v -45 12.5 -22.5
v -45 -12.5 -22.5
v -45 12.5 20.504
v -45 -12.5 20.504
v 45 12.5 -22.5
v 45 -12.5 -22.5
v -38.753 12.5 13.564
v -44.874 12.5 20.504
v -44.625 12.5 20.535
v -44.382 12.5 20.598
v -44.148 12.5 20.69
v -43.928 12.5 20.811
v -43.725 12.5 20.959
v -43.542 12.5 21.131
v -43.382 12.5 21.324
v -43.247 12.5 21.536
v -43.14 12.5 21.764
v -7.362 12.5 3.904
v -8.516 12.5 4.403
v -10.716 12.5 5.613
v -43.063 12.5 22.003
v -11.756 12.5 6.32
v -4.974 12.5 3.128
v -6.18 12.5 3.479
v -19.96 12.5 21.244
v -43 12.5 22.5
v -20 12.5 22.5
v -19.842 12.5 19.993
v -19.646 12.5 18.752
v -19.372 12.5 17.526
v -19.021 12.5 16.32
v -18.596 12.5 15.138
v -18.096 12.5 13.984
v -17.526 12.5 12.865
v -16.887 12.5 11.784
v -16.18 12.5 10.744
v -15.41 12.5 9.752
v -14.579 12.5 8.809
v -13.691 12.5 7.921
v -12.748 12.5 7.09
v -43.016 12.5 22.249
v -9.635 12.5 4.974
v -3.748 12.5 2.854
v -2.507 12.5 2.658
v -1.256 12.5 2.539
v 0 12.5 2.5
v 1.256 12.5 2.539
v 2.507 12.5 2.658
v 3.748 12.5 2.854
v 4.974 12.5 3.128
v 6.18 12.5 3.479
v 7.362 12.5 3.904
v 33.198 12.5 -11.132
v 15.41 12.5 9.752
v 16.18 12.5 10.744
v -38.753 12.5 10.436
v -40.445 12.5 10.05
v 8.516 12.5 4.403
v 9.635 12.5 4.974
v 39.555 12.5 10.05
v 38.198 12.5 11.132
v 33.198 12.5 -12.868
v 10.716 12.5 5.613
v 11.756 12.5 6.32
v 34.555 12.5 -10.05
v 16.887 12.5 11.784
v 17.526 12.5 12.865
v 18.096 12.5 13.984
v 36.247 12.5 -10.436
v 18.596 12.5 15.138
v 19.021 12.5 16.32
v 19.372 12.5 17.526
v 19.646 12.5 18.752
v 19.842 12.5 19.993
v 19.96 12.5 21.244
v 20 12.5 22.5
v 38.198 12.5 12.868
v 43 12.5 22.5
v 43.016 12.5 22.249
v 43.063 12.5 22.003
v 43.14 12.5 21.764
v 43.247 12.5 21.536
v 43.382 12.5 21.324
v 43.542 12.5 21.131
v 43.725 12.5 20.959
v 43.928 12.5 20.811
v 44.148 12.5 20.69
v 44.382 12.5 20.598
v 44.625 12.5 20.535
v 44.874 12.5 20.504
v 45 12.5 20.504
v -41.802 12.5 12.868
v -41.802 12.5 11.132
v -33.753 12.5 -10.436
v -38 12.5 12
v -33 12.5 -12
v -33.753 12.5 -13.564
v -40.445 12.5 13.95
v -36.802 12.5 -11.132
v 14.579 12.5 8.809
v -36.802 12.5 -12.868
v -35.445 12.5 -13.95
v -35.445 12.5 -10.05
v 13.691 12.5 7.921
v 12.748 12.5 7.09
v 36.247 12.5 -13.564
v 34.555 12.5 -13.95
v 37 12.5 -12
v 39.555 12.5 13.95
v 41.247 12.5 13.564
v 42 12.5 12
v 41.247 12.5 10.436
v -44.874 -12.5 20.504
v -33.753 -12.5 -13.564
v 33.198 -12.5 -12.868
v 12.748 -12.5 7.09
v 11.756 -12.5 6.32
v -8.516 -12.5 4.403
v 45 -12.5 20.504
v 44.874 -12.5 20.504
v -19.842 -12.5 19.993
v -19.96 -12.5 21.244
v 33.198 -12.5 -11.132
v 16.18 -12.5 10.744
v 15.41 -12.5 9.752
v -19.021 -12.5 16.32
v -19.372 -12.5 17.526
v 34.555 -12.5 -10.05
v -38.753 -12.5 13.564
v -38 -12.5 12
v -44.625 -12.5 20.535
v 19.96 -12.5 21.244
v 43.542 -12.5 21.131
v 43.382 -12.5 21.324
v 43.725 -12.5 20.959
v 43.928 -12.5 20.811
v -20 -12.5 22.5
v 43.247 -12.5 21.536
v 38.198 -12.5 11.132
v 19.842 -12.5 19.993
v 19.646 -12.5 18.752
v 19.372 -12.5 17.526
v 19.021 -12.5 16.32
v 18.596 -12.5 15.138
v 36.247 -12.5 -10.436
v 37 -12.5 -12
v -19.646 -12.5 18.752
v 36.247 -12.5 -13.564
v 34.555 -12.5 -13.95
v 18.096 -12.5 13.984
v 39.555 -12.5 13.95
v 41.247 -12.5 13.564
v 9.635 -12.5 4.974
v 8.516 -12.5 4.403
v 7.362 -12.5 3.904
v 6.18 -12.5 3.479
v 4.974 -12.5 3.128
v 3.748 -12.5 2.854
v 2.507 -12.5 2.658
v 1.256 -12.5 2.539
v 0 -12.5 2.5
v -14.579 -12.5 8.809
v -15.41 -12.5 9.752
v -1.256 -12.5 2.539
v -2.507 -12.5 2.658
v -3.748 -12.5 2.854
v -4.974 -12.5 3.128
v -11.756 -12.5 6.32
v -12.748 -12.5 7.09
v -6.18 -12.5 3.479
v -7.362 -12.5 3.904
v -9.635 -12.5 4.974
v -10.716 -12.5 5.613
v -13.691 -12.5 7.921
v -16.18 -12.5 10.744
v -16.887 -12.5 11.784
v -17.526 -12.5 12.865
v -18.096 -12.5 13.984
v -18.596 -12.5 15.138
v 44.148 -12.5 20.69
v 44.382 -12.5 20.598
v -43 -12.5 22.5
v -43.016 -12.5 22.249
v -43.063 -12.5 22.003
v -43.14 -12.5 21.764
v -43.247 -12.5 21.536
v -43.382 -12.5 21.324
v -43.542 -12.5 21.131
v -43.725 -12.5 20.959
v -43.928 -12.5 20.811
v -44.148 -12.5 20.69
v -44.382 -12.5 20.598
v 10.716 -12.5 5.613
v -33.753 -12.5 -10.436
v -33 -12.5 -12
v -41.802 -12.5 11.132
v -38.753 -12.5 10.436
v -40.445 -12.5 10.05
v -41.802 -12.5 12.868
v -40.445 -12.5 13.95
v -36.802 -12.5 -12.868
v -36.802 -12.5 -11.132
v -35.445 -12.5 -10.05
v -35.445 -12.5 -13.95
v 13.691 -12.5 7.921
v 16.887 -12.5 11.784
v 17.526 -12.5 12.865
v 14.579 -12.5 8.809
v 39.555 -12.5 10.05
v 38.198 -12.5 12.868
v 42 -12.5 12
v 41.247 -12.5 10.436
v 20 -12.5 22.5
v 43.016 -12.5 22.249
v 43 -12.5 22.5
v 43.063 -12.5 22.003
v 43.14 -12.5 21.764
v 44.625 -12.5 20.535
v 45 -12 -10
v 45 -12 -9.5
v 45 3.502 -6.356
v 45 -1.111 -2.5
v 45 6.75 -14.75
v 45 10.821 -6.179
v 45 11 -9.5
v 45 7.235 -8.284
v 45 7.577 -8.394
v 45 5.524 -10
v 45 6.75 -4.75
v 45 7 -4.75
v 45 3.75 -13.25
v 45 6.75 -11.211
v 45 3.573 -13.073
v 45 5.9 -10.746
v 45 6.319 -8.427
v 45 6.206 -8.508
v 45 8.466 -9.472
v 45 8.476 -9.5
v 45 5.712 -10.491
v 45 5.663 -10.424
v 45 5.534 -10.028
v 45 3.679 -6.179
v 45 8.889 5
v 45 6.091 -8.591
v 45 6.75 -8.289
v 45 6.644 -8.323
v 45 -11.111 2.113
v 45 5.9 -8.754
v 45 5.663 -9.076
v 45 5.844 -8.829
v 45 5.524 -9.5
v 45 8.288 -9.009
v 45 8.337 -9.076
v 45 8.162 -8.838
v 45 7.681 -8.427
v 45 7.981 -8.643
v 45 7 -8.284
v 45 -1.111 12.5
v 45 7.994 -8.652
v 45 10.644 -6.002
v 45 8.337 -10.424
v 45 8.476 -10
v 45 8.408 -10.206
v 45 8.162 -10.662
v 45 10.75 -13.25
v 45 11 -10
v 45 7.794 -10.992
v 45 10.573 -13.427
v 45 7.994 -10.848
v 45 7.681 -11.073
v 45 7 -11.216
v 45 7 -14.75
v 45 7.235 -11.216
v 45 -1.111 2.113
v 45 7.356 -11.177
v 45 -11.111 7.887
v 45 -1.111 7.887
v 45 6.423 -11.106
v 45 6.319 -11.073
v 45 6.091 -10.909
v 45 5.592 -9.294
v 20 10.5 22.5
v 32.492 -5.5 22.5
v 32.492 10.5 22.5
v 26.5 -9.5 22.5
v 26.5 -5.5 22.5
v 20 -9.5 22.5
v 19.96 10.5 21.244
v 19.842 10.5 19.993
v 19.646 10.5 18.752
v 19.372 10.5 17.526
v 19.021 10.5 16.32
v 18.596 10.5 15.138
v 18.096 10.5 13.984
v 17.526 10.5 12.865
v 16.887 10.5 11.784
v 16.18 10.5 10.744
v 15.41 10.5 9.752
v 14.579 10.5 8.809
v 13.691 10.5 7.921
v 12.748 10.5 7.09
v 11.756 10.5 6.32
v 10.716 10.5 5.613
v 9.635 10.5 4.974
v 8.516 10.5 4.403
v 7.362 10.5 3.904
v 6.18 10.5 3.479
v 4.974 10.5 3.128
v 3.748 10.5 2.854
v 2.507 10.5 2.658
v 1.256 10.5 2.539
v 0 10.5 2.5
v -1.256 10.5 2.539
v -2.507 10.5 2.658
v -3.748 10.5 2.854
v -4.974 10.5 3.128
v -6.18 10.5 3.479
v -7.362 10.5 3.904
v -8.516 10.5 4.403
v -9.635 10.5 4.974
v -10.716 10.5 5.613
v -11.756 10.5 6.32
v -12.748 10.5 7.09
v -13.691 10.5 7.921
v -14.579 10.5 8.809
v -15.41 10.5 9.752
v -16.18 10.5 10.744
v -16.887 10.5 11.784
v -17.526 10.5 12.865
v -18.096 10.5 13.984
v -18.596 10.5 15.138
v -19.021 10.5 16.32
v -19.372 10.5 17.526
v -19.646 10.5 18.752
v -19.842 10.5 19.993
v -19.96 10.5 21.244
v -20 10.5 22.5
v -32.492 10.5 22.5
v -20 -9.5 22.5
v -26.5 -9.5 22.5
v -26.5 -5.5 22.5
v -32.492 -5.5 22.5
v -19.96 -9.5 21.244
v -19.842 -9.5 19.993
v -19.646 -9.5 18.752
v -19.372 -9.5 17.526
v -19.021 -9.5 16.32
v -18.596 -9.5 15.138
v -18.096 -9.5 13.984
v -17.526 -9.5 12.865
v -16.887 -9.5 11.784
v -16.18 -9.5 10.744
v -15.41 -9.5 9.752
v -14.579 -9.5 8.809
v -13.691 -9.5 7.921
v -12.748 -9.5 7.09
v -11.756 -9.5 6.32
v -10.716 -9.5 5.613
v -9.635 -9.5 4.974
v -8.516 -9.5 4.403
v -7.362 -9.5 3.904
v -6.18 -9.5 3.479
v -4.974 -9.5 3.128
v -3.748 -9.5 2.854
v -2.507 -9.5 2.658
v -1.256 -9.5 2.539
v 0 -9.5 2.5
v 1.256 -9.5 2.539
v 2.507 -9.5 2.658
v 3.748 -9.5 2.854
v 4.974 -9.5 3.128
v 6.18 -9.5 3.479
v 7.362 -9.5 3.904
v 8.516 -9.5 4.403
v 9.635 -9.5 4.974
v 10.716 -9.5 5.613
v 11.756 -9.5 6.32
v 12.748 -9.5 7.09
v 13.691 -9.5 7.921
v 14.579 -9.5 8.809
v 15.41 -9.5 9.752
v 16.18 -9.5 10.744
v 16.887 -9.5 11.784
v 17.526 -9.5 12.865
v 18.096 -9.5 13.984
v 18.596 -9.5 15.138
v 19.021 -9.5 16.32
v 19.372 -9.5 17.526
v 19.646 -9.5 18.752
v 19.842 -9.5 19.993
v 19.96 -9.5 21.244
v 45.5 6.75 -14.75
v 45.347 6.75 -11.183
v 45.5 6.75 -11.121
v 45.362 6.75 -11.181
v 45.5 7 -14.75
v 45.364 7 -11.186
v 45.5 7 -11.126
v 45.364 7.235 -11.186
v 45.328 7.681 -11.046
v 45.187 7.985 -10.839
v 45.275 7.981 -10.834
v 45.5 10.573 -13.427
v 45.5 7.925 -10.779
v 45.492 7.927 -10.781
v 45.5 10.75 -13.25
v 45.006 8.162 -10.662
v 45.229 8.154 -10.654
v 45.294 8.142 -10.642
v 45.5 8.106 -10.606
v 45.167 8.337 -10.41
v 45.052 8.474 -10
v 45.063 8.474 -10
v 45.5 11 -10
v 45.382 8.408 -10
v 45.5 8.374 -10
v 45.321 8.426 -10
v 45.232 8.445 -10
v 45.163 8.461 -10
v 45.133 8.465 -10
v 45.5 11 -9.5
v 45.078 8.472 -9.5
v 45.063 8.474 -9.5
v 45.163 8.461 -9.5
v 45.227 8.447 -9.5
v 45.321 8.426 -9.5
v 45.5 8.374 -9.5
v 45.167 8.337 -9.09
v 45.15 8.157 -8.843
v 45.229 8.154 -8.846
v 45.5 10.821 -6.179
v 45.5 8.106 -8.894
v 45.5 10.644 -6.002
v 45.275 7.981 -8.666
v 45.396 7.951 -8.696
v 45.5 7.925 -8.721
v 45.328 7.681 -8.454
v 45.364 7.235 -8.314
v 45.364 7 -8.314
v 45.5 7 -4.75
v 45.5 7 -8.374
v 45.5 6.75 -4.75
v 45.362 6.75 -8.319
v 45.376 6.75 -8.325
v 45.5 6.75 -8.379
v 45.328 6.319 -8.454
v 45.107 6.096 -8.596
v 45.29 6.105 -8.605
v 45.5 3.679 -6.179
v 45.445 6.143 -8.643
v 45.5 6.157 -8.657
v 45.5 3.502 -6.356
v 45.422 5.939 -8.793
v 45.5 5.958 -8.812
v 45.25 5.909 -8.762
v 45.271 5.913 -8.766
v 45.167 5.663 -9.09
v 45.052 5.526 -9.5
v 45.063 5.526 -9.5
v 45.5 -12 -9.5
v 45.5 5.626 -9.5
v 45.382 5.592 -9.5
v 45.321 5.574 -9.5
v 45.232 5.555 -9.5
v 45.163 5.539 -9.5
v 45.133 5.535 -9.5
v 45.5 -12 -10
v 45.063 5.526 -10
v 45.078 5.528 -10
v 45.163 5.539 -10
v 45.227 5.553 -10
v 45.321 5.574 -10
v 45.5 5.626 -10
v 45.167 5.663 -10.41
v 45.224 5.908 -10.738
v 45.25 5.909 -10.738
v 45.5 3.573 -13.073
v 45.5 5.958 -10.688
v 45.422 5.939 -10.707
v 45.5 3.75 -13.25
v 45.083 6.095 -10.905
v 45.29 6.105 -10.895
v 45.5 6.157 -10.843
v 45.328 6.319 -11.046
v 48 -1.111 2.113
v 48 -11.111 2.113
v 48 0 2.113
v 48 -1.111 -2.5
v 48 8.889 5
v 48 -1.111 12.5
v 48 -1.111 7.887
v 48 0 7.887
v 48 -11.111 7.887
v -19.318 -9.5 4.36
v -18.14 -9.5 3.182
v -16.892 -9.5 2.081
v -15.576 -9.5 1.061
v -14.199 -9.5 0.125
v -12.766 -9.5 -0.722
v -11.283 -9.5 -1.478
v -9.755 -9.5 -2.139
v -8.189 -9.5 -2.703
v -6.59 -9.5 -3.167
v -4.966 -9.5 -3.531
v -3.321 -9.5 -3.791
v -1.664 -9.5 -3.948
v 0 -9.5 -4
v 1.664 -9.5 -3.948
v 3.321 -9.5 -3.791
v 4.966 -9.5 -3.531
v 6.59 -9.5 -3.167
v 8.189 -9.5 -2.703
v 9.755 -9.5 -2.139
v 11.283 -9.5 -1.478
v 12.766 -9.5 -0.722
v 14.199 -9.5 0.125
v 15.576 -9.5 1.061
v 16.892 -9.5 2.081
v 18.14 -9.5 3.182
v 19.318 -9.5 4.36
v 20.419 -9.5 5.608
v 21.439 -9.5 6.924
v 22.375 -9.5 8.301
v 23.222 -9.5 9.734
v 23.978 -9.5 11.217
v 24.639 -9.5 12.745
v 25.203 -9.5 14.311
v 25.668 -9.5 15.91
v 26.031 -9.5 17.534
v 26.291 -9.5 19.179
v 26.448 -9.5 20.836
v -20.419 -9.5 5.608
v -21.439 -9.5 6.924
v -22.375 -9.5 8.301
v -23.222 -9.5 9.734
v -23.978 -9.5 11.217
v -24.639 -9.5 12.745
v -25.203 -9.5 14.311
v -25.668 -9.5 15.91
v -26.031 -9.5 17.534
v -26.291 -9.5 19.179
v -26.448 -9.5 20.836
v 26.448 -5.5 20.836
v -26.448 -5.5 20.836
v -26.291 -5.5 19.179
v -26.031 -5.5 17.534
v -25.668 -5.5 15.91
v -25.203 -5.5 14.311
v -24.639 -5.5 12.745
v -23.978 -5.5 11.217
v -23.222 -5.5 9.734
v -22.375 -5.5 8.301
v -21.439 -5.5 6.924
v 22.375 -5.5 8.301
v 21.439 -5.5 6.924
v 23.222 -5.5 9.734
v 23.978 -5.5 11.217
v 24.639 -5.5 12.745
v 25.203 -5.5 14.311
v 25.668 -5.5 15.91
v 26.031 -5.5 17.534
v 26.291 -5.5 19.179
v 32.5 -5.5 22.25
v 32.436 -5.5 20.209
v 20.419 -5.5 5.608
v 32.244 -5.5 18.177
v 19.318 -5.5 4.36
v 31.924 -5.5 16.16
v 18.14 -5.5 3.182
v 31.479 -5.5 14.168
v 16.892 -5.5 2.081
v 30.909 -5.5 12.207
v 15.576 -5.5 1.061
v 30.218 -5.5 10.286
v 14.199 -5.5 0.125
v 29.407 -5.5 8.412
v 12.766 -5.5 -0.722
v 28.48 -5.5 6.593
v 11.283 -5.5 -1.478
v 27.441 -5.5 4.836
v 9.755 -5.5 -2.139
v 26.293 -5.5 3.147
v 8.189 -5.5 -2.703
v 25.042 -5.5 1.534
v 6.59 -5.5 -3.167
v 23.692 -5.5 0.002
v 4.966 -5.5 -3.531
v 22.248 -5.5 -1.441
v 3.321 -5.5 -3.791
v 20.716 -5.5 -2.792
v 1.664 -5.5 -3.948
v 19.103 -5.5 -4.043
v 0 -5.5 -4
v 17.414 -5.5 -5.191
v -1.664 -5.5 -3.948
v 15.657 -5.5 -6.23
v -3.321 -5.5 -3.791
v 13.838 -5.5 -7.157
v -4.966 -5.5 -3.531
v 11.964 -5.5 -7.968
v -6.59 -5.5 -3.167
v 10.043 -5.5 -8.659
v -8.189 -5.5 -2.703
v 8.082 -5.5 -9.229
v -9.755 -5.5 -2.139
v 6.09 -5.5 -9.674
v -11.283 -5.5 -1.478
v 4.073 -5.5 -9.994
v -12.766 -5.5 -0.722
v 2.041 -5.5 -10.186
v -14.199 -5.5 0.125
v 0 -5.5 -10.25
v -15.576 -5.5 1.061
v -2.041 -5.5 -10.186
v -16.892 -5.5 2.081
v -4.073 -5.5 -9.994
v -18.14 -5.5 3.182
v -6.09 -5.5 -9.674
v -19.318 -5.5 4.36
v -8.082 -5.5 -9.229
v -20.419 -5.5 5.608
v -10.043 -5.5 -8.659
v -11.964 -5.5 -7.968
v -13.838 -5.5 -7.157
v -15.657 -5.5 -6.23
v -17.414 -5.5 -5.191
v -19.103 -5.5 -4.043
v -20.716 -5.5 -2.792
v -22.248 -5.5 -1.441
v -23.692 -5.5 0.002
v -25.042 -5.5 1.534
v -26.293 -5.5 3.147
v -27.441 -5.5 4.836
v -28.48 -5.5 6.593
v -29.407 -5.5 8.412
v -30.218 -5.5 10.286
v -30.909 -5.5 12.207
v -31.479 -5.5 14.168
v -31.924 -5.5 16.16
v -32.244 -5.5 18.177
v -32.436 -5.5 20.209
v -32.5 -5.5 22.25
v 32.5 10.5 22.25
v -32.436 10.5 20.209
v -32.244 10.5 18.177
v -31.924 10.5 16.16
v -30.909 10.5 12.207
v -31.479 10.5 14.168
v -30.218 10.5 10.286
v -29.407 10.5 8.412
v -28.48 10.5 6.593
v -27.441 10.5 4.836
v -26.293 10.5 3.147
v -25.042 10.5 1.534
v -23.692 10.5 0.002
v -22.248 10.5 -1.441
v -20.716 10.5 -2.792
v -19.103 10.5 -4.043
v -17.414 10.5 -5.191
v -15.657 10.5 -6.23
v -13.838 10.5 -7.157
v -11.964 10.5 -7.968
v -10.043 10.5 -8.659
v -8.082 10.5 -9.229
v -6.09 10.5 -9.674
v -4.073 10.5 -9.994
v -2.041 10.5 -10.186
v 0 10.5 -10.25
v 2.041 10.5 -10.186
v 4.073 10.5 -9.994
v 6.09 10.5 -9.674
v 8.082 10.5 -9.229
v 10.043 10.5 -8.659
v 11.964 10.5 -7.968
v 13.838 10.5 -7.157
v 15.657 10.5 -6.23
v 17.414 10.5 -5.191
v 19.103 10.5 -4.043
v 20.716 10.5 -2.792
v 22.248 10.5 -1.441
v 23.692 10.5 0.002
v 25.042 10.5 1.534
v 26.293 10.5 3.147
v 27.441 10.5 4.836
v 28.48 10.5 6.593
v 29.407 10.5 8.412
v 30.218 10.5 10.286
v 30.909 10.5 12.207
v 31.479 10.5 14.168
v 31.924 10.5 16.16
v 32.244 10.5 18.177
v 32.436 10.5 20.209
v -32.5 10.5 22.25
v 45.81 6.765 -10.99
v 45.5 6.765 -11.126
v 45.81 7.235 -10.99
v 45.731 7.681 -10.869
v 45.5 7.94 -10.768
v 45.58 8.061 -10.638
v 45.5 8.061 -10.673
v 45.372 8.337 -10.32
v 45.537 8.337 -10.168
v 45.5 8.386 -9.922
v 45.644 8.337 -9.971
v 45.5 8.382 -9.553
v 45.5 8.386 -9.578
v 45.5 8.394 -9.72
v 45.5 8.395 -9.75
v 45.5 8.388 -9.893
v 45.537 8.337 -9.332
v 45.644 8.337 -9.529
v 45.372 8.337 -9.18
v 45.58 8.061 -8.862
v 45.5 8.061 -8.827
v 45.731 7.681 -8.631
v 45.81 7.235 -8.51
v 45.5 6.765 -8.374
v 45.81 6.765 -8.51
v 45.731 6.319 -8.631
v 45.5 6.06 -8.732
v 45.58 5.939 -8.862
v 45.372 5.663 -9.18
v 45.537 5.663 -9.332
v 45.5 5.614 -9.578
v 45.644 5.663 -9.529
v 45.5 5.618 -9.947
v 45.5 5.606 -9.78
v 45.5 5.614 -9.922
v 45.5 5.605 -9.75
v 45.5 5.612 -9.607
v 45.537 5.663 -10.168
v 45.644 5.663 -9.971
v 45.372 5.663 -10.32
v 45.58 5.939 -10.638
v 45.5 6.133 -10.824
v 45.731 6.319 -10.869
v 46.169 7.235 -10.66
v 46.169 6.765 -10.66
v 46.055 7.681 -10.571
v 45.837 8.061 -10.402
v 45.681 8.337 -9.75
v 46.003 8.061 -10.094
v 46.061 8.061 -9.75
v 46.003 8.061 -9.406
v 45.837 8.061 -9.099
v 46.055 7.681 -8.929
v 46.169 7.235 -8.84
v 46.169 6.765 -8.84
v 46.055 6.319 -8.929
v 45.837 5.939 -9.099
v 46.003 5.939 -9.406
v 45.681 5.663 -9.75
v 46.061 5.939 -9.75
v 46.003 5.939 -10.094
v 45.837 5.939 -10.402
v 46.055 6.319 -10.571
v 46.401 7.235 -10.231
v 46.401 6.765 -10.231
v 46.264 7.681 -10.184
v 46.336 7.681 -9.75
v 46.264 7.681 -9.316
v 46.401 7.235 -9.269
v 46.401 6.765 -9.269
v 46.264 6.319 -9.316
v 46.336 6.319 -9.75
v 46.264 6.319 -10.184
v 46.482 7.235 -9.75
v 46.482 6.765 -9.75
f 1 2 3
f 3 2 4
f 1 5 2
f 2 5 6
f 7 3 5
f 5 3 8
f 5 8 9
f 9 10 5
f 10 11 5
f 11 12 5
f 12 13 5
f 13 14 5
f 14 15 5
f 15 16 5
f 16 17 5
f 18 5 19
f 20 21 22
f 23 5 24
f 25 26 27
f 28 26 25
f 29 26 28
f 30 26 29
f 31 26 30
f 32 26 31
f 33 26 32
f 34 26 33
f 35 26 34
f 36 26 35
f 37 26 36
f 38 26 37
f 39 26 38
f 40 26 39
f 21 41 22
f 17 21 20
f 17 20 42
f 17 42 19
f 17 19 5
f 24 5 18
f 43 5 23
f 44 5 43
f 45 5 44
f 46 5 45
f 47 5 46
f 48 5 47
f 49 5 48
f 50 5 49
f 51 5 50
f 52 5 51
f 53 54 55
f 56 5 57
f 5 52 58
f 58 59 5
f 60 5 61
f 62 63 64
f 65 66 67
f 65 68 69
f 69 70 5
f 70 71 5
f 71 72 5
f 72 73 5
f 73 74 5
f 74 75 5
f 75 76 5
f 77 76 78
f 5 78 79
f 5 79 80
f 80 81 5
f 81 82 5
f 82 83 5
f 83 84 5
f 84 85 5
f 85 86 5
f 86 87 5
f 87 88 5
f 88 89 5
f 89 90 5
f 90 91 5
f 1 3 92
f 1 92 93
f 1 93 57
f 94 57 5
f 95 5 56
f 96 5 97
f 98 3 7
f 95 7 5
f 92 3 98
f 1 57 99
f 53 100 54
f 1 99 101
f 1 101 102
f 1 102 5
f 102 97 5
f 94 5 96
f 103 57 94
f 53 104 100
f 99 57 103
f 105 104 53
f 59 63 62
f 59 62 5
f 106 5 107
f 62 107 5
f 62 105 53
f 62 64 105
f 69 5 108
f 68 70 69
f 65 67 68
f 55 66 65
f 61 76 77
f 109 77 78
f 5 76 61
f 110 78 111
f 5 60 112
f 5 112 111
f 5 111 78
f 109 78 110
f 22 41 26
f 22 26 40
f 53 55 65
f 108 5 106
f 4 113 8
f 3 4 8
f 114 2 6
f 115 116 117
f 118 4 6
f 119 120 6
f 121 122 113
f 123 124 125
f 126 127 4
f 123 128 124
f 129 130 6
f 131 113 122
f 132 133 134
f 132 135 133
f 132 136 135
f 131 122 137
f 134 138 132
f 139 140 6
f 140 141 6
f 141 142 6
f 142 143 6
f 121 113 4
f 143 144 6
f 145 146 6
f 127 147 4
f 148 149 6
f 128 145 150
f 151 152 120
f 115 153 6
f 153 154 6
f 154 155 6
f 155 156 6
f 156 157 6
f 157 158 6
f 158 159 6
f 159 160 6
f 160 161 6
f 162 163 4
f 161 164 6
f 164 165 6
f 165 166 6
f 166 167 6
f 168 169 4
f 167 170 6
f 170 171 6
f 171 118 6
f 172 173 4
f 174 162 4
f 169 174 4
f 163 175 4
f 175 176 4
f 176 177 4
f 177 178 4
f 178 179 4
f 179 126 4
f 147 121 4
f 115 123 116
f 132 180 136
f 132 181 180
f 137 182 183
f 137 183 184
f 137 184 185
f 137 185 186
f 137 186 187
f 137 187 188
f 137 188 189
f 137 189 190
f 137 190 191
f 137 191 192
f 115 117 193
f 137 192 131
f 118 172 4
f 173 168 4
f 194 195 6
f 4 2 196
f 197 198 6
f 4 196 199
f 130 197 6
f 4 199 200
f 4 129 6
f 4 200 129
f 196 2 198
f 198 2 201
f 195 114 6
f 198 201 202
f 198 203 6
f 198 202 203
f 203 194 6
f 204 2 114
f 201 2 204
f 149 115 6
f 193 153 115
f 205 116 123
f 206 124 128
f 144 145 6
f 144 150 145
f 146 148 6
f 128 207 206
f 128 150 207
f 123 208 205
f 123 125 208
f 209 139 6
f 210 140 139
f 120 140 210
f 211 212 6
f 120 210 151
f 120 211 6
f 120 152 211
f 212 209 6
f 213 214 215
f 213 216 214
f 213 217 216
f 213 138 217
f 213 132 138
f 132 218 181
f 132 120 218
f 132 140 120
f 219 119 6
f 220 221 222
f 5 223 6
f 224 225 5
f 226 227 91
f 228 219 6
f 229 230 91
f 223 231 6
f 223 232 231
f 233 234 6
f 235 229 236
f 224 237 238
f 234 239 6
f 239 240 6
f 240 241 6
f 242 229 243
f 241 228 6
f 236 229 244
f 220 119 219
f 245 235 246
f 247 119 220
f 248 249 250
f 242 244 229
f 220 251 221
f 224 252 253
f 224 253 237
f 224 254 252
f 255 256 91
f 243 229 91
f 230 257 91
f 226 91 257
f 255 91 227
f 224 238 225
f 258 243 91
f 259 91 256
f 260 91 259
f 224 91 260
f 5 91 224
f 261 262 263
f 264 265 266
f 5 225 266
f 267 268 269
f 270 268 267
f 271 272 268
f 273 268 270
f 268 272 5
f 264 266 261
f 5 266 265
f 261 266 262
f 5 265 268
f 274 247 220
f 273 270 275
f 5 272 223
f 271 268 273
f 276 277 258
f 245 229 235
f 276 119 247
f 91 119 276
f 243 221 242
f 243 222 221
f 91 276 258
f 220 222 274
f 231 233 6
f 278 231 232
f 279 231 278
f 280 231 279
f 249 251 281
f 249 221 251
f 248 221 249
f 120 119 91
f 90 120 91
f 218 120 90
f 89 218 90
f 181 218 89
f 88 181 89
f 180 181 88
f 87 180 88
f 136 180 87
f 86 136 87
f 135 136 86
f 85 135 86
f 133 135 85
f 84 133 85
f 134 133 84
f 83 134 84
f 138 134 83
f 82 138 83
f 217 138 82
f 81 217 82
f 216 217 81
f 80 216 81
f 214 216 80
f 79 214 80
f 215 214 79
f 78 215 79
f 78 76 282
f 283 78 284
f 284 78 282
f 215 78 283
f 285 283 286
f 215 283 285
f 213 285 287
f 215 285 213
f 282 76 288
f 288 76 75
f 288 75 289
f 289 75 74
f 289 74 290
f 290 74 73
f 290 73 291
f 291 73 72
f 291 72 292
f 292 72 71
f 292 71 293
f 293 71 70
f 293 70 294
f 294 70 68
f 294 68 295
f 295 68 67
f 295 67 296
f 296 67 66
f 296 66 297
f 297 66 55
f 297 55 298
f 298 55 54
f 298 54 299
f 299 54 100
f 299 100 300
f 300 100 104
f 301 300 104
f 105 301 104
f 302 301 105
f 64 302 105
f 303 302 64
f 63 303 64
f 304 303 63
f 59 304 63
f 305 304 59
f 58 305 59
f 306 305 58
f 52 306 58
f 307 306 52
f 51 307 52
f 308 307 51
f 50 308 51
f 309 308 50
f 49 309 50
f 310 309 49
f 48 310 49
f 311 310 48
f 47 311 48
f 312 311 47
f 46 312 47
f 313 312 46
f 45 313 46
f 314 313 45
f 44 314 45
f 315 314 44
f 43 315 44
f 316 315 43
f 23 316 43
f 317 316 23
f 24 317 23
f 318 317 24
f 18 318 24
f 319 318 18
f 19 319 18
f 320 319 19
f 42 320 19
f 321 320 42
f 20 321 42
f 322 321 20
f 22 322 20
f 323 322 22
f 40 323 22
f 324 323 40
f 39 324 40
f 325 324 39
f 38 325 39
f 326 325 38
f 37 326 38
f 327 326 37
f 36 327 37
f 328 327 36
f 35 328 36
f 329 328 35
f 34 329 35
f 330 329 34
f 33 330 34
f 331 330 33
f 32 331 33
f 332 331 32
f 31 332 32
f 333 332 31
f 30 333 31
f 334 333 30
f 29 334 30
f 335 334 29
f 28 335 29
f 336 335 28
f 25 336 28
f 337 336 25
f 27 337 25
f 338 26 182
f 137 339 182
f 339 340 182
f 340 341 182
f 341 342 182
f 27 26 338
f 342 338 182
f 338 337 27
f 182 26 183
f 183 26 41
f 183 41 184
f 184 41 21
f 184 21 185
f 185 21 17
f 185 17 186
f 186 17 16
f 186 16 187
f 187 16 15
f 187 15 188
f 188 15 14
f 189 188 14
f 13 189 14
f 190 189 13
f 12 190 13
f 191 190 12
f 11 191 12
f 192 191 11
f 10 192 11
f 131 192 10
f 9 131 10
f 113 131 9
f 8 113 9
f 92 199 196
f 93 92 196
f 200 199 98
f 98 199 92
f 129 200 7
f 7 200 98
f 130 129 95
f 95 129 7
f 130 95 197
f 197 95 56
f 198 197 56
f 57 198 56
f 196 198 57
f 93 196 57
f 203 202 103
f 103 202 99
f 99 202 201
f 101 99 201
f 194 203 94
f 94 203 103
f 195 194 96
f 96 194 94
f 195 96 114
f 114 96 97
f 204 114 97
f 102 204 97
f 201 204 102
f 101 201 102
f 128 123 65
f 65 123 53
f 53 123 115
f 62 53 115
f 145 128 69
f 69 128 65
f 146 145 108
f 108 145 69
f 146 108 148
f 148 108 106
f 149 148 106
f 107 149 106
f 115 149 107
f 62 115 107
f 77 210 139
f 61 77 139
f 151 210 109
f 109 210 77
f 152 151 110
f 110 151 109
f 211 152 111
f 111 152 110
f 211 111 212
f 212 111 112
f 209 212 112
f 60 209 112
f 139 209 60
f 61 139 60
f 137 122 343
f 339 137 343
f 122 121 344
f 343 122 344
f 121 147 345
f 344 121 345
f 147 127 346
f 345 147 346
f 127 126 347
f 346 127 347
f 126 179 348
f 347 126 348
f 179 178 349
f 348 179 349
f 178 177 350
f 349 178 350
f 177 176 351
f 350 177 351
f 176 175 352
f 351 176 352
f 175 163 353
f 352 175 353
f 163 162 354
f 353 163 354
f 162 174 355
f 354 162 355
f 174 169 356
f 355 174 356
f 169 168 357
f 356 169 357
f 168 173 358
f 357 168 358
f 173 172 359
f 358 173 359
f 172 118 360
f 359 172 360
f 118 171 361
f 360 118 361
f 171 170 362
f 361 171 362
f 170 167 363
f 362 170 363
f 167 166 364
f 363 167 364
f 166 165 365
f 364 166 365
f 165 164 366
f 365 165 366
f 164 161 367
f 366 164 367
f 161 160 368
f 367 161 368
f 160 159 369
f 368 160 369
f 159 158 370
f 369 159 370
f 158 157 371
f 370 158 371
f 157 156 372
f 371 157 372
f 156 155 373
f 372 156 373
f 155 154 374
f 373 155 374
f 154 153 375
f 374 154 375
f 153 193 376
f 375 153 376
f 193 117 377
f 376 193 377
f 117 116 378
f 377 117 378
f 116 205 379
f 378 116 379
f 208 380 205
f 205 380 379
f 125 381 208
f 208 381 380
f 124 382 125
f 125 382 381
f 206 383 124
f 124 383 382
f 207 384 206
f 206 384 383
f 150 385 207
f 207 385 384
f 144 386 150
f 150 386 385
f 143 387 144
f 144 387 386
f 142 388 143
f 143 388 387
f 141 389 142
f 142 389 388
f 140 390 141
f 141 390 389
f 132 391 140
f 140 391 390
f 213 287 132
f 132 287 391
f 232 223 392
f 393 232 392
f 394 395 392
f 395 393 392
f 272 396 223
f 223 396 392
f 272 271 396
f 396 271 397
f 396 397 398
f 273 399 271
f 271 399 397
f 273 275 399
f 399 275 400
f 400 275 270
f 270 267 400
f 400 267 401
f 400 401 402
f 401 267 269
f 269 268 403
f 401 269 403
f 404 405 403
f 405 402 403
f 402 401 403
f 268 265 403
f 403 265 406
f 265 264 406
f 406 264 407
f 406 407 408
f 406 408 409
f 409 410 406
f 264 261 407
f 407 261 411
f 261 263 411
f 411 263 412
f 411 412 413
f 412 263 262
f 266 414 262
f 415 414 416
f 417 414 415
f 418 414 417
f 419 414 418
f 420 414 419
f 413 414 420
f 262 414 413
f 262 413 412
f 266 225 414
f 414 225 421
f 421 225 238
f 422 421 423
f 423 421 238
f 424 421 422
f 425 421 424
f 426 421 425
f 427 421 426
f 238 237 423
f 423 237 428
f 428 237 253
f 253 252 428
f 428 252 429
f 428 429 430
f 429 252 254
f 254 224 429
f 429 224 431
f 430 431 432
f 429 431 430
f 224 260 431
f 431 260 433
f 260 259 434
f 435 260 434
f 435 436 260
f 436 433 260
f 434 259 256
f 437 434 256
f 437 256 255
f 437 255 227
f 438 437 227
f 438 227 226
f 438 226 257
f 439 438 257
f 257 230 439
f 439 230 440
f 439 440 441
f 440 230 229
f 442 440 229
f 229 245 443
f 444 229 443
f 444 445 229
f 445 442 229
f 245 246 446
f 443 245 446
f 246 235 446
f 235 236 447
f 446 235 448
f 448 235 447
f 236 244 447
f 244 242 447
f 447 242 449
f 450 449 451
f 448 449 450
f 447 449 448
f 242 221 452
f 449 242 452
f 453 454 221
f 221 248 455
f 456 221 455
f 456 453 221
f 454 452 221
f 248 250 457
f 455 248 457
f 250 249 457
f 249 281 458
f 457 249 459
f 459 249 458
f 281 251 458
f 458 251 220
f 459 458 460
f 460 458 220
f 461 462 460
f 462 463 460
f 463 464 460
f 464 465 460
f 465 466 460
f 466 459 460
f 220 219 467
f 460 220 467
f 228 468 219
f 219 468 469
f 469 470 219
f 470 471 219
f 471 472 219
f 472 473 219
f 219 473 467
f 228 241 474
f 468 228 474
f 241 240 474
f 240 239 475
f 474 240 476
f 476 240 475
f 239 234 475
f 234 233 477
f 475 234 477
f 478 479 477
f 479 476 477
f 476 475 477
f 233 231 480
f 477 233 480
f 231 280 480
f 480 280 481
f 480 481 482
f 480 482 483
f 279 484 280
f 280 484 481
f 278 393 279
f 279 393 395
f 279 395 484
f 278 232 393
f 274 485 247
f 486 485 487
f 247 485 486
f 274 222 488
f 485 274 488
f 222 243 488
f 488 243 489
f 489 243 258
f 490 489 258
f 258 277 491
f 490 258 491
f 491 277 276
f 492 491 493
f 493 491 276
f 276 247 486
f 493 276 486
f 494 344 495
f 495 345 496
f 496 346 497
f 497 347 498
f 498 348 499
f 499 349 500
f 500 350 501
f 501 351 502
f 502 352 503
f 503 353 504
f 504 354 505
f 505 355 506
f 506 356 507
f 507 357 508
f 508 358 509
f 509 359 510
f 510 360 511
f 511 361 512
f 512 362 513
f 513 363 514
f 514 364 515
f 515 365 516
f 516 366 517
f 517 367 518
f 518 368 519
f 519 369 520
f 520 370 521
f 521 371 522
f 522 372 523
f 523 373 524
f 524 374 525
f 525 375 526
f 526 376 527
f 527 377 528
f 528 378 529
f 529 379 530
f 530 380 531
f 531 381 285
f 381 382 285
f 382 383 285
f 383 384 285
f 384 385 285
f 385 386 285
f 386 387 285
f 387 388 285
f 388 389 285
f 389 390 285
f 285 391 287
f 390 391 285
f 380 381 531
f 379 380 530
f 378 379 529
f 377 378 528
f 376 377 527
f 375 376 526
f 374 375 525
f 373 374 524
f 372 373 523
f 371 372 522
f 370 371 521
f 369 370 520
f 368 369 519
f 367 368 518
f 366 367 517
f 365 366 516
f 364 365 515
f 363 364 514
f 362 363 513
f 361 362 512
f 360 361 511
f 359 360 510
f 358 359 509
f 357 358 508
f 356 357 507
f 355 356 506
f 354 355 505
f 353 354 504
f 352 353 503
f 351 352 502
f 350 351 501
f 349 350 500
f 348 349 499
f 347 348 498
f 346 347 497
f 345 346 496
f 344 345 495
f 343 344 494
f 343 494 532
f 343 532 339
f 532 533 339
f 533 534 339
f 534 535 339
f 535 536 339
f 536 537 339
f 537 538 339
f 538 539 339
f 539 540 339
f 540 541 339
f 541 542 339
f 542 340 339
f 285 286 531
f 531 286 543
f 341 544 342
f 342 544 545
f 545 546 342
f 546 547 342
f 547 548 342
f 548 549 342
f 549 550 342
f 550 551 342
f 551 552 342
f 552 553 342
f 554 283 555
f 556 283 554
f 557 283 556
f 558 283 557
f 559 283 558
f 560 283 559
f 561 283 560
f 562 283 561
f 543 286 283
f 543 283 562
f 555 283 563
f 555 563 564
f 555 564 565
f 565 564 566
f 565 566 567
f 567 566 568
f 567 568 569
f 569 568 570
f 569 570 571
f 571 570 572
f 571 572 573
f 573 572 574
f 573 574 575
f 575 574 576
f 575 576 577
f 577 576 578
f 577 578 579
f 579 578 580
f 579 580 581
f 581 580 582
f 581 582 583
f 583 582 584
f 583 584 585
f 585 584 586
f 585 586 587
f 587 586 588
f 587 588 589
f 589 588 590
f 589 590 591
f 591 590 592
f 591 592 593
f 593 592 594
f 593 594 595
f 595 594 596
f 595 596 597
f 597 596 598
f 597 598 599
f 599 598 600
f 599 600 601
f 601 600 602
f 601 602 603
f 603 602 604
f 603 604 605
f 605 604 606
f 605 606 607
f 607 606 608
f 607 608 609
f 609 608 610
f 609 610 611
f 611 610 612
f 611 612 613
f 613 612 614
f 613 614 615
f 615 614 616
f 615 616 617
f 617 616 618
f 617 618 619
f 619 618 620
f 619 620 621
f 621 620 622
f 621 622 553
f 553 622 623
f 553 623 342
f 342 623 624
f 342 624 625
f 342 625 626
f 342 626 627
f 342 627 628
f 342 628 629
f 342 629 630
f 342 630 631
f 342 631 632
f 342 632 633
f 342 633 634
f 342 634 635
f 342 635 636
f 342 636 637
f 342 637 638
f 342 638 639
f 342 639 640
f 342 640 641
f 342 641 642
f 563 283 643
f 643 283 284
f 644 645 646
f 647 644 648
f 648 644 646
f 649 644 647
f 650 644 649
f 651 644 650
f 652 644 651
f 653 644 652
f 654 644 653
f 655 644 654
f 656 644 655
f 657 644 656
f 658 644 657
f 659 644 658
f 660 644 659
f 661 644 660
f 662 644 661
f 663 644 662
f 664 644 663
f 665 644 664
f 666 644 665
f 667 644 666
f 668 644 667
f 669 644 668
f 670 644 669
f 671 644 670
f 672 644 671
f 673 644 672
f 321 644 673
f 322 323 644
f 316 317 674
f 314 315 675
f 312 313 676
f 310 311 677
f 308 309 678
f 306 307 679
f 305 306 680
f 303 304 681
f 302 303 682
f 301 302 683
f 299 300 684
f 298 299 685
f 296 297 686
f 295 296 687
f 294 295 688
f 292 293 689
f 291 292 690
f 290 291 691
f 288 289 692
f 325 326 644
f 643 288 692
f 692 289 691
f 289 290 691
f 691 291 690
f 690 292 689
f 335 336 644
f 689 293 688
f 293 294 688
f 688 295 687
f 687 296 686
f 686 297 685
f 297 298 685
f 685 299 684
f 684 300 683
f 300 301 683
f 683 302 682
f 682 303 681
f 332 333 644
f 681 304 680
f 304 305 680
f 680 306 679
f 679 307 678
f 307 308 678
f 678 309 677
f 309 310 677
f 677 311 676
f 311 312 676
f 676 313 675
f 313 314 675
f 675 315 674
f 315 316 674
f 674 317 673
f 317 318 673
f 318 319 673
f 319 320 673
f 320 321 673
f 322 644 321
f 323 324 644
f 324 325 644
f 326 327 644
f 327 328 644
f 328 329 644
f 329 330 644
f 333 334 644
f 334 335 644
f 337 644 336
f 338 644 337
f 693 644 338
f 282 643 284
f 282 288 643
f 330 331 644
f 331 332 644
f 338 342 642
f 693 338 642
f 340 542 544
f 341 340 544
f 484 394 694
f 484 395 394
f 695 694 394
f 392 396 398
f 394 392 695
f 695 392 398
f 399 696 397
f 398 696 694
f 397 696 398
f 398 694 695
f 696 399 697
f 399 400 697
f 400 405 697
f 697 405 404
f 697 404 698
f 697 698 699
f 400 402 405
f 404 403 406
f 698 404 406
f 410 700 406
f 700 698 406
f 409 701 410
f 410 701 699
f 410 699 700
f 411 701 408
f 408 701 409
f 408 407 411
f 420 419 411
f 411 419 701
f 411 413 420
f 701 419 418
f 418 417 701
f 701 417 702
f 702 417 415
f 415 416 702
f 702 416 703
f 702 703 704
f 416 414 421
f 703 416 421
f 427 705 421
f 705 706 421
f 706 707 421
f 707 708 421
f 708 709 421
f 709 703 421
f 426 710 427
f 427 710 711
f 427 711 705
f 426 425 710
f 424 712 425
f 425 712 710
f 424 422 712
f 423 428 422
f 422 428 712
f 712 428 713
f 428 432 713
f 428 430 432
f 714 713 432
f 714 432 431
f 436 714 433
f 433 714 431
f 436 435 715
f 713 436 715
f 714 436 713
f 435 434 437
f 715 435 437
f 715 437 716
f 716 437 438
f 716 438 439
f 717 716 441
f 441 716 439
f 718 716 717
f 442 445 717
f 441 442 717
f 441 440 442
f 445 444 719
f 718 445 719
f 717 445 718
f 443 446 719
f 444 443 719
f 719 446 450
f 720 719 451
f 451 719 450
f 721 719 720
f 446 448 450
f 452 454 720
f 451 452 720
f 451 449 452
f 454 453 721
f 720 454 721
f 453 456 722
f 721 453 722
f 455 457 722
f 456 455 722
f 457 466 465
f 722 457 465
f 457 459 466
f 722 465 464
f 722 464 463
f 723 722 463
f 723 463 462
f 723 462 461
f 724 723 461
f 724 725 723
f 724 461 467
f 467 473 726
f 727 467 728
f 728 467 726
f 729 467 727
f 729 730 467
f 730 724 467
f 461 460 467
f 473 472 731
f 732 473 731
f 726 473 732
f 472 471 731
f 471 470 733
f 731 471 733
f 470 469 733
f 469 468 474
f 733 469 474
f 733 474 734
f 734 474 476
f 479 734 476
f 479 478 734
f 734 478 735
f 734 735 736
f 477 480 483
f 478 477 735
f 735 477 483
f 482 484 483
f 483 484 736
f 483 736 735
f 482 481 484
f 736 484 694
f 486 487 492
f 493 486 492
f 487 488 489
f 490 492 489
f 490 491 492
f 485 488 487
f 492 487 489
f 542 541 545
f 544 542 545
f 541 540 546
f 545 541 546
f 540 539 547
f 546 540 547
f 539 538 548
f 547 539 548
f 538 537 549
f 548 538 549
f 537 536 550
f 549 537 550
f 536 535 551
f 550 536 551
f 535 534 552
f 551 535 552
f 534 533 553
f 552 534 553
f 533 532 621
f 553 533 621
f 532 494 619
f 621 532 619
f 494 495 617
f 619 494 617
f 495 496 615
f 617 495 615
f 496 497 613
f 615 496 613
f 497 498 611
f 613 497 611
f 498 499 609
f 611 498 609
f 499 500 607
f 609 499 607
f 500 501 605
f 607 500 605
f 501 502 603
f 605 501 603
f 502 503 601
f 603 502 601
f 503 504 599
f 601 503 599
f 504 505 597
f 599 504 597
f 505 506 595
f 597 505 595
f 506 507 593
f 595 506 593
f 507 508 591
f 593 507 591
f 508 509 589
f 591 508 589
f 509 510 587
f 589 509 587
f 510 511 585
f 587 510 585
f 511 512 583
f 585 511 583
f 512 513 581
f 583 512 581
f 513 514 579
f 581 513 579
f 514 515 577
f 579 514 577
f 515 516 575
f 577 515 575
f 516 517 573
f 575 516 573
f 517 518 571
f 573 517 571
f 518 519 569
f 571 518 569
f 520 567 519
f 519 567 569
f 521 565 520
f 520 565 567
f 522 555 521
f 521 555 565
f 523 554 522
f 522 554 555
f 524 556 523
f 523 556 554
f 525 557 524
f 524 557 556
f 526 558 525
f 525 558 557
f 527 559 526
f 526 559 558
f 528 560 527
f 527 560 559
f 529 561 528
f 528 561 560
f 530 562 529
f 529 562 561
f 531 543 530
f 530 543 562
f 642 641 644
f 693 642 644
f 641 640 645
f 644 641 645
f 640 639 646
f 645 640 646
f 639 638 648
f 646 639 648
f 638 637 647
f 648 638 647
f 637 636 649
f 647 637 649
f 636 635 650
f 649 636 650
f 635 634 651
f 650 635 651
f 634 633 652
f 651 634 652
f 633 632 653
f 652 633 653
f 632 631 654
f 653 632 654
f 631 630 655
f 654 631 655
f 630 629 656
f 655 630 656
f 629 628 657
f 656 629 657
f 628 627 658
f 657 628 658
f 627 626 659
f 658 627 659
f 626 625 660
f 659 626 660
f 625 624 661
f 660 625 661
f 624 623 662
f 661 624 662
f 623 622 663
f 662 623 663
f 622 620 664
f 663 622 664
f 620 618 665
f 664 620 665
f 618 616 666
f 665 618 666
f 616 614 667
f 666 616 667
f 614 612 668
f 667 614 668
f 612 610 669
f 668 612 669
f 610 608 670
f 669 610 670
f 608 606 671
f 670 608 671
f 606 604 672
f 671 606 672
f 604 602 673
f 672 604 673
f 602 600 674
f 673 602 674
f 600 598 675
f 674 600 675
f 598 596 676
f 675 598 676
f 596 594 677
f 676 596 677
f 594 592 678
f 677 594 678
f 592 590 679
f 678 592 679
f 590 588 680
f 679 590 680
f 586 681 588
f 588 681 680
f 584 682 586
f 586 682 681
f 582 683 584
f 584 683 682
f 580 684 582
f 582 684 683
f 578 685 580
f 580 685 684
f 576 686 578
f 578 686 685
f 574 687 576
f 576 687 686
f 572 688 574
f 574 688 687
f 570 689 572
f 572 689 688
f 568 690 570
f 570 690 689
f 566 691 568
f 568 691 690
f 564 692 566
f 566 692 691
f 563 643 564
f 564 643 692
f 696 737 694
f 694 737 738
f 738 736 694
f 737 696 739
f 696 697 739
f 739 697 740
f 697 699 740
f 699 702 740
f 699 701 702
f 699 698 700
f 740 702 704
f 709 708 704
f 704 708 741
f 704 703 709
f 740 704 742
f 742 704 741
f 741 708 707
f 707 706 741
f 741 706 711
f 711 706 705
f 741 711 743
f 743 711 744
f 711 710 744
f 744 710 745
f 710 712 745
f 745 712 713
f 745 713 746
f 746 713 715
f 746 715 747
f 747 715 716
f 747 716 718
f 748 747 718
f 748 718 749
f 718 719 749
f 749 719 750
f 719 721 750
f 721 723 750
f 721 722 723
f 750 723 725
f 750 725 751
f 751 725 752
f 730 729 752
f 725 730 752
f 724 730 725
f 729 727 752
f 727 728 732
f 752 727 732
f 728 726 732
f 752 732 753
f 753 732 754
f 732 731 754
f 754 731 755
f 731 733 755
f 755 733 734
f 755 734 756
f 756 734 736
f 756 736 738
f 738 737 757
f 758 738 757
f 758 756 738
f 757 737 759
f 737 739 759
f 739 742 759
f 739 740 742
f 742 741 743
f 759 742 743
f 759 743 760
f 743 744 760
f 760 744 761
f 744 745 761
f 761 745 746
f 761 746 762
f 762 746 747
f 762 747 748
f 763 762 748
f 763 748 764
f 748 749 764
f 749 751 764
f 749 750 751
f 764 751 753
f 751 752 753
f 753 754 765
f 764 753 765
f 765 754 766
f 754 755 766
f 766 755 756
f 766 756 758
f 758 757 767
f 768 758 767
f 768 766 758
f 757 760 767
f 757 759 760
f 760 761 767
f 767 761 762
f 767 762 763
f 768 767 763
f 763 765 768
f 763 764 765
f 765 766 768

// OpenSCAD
// file: filterMount_screwHoles.scad
module upperScrewHoles(){
	//upperMiddleHalf
	translate([40,12,0]) cylinder(h=30,r=2,center=true);
	translate([-40,12,0]) cylinder(h=30,r=2,center=true);
	//upperHalf
	translate([35,-12,0]) cylinder(h=30,r=2,center=true);
	translate([-35,-12,0]) cylinder(h=30,r=2,center=true);
}

module lowerScrewHoles(){
	//lowerMiddleHalf
	translate([40,-12,0]) cylinder(h=30,r=2,center=true);
	translate([-40,-12,0]) cylinder(h=30,r=2,center=true);
	//bottomwHalf
	translate([35,12,0]) cylinder(h=30,r=2,center=true);
	translate([-35,12,0]) cylinder(h=30,r=2,center=true);
}

upperScrewHoles();
lowerScrewHoles();
// file: arrow.scad
module arrow(){
	//arrowBody
	translate([0,-1,0]) color([0,1,1]) cube(size=[2.5,2,5]);
	//arrowHead
	translate([0,0,-1]) color([0,1,1]) rotate([0,90,0]) cylinder(h=2.5,r=3,$fn=3);
}

arrow();
// main file
use <arrow.scad>
use <filterMount_screwHoles.scad>

module interferenceFilterMountTop(){
	//arrow
	translate([44,5,0]){
		rotate([0,0,0]){
			resize(newsize=[4,15,20]){
				arrow();
			}
		}
	}
	//laserLine
	translate([45,-10,-11]) color([0,1,1]) cube(size=[.5,.5,23]);
	//laserBall
	translate([45,-9.75,-7]) color([0,1,1]) sphere(r=1.5,$fs=.5);
	//laserEffect
	translate([45,-13.25,-10.75]) rotate([45,0,0]) color([0,1,1]) cube(size=[.5,10,.25]);
	translate([45,-13.25,-3.75]) rotate([-45,0,0]) color([0,1,1]) cube(size=[.5,10,.25]);
	translate([45,-14.75,-7]) rotate([0,0,0]) color([0,1,1]) cube(size=[.5,10,.25]);

	//Interference Filter Mount Top
	difference(){
		//mountBody
		color([.6,.1,.6]) cube(size=[90,45,25],center=true);
		//filterBody
		translate([0,22.25,-2.5]) cylinder(h=16,r=32.5,$fn=100,center=true);
		//filterScrewMount
		translate([0,22.5,6.5]) cylinder(h=6,r=26.5,$fn=100,center=true);
		//filterHole
		translate([0,22.5,0]) cylinder(h=30,r=20,$fn=100,center=true);
		//screwHoles
		upperScrewHoles();
		//cornerNotch
		translate([45,22.5,0]) cylinder(h=30,r=2,$fn=50,center=true);
		translate([-45,22.5,0]) cylinder(h=30,r=2,$fn=50,center=true);
	}
}

//interferenceMountTop
rotate([90,0,0]) translate([0,0,0]){
	interferenceFilterMountTop();
}
